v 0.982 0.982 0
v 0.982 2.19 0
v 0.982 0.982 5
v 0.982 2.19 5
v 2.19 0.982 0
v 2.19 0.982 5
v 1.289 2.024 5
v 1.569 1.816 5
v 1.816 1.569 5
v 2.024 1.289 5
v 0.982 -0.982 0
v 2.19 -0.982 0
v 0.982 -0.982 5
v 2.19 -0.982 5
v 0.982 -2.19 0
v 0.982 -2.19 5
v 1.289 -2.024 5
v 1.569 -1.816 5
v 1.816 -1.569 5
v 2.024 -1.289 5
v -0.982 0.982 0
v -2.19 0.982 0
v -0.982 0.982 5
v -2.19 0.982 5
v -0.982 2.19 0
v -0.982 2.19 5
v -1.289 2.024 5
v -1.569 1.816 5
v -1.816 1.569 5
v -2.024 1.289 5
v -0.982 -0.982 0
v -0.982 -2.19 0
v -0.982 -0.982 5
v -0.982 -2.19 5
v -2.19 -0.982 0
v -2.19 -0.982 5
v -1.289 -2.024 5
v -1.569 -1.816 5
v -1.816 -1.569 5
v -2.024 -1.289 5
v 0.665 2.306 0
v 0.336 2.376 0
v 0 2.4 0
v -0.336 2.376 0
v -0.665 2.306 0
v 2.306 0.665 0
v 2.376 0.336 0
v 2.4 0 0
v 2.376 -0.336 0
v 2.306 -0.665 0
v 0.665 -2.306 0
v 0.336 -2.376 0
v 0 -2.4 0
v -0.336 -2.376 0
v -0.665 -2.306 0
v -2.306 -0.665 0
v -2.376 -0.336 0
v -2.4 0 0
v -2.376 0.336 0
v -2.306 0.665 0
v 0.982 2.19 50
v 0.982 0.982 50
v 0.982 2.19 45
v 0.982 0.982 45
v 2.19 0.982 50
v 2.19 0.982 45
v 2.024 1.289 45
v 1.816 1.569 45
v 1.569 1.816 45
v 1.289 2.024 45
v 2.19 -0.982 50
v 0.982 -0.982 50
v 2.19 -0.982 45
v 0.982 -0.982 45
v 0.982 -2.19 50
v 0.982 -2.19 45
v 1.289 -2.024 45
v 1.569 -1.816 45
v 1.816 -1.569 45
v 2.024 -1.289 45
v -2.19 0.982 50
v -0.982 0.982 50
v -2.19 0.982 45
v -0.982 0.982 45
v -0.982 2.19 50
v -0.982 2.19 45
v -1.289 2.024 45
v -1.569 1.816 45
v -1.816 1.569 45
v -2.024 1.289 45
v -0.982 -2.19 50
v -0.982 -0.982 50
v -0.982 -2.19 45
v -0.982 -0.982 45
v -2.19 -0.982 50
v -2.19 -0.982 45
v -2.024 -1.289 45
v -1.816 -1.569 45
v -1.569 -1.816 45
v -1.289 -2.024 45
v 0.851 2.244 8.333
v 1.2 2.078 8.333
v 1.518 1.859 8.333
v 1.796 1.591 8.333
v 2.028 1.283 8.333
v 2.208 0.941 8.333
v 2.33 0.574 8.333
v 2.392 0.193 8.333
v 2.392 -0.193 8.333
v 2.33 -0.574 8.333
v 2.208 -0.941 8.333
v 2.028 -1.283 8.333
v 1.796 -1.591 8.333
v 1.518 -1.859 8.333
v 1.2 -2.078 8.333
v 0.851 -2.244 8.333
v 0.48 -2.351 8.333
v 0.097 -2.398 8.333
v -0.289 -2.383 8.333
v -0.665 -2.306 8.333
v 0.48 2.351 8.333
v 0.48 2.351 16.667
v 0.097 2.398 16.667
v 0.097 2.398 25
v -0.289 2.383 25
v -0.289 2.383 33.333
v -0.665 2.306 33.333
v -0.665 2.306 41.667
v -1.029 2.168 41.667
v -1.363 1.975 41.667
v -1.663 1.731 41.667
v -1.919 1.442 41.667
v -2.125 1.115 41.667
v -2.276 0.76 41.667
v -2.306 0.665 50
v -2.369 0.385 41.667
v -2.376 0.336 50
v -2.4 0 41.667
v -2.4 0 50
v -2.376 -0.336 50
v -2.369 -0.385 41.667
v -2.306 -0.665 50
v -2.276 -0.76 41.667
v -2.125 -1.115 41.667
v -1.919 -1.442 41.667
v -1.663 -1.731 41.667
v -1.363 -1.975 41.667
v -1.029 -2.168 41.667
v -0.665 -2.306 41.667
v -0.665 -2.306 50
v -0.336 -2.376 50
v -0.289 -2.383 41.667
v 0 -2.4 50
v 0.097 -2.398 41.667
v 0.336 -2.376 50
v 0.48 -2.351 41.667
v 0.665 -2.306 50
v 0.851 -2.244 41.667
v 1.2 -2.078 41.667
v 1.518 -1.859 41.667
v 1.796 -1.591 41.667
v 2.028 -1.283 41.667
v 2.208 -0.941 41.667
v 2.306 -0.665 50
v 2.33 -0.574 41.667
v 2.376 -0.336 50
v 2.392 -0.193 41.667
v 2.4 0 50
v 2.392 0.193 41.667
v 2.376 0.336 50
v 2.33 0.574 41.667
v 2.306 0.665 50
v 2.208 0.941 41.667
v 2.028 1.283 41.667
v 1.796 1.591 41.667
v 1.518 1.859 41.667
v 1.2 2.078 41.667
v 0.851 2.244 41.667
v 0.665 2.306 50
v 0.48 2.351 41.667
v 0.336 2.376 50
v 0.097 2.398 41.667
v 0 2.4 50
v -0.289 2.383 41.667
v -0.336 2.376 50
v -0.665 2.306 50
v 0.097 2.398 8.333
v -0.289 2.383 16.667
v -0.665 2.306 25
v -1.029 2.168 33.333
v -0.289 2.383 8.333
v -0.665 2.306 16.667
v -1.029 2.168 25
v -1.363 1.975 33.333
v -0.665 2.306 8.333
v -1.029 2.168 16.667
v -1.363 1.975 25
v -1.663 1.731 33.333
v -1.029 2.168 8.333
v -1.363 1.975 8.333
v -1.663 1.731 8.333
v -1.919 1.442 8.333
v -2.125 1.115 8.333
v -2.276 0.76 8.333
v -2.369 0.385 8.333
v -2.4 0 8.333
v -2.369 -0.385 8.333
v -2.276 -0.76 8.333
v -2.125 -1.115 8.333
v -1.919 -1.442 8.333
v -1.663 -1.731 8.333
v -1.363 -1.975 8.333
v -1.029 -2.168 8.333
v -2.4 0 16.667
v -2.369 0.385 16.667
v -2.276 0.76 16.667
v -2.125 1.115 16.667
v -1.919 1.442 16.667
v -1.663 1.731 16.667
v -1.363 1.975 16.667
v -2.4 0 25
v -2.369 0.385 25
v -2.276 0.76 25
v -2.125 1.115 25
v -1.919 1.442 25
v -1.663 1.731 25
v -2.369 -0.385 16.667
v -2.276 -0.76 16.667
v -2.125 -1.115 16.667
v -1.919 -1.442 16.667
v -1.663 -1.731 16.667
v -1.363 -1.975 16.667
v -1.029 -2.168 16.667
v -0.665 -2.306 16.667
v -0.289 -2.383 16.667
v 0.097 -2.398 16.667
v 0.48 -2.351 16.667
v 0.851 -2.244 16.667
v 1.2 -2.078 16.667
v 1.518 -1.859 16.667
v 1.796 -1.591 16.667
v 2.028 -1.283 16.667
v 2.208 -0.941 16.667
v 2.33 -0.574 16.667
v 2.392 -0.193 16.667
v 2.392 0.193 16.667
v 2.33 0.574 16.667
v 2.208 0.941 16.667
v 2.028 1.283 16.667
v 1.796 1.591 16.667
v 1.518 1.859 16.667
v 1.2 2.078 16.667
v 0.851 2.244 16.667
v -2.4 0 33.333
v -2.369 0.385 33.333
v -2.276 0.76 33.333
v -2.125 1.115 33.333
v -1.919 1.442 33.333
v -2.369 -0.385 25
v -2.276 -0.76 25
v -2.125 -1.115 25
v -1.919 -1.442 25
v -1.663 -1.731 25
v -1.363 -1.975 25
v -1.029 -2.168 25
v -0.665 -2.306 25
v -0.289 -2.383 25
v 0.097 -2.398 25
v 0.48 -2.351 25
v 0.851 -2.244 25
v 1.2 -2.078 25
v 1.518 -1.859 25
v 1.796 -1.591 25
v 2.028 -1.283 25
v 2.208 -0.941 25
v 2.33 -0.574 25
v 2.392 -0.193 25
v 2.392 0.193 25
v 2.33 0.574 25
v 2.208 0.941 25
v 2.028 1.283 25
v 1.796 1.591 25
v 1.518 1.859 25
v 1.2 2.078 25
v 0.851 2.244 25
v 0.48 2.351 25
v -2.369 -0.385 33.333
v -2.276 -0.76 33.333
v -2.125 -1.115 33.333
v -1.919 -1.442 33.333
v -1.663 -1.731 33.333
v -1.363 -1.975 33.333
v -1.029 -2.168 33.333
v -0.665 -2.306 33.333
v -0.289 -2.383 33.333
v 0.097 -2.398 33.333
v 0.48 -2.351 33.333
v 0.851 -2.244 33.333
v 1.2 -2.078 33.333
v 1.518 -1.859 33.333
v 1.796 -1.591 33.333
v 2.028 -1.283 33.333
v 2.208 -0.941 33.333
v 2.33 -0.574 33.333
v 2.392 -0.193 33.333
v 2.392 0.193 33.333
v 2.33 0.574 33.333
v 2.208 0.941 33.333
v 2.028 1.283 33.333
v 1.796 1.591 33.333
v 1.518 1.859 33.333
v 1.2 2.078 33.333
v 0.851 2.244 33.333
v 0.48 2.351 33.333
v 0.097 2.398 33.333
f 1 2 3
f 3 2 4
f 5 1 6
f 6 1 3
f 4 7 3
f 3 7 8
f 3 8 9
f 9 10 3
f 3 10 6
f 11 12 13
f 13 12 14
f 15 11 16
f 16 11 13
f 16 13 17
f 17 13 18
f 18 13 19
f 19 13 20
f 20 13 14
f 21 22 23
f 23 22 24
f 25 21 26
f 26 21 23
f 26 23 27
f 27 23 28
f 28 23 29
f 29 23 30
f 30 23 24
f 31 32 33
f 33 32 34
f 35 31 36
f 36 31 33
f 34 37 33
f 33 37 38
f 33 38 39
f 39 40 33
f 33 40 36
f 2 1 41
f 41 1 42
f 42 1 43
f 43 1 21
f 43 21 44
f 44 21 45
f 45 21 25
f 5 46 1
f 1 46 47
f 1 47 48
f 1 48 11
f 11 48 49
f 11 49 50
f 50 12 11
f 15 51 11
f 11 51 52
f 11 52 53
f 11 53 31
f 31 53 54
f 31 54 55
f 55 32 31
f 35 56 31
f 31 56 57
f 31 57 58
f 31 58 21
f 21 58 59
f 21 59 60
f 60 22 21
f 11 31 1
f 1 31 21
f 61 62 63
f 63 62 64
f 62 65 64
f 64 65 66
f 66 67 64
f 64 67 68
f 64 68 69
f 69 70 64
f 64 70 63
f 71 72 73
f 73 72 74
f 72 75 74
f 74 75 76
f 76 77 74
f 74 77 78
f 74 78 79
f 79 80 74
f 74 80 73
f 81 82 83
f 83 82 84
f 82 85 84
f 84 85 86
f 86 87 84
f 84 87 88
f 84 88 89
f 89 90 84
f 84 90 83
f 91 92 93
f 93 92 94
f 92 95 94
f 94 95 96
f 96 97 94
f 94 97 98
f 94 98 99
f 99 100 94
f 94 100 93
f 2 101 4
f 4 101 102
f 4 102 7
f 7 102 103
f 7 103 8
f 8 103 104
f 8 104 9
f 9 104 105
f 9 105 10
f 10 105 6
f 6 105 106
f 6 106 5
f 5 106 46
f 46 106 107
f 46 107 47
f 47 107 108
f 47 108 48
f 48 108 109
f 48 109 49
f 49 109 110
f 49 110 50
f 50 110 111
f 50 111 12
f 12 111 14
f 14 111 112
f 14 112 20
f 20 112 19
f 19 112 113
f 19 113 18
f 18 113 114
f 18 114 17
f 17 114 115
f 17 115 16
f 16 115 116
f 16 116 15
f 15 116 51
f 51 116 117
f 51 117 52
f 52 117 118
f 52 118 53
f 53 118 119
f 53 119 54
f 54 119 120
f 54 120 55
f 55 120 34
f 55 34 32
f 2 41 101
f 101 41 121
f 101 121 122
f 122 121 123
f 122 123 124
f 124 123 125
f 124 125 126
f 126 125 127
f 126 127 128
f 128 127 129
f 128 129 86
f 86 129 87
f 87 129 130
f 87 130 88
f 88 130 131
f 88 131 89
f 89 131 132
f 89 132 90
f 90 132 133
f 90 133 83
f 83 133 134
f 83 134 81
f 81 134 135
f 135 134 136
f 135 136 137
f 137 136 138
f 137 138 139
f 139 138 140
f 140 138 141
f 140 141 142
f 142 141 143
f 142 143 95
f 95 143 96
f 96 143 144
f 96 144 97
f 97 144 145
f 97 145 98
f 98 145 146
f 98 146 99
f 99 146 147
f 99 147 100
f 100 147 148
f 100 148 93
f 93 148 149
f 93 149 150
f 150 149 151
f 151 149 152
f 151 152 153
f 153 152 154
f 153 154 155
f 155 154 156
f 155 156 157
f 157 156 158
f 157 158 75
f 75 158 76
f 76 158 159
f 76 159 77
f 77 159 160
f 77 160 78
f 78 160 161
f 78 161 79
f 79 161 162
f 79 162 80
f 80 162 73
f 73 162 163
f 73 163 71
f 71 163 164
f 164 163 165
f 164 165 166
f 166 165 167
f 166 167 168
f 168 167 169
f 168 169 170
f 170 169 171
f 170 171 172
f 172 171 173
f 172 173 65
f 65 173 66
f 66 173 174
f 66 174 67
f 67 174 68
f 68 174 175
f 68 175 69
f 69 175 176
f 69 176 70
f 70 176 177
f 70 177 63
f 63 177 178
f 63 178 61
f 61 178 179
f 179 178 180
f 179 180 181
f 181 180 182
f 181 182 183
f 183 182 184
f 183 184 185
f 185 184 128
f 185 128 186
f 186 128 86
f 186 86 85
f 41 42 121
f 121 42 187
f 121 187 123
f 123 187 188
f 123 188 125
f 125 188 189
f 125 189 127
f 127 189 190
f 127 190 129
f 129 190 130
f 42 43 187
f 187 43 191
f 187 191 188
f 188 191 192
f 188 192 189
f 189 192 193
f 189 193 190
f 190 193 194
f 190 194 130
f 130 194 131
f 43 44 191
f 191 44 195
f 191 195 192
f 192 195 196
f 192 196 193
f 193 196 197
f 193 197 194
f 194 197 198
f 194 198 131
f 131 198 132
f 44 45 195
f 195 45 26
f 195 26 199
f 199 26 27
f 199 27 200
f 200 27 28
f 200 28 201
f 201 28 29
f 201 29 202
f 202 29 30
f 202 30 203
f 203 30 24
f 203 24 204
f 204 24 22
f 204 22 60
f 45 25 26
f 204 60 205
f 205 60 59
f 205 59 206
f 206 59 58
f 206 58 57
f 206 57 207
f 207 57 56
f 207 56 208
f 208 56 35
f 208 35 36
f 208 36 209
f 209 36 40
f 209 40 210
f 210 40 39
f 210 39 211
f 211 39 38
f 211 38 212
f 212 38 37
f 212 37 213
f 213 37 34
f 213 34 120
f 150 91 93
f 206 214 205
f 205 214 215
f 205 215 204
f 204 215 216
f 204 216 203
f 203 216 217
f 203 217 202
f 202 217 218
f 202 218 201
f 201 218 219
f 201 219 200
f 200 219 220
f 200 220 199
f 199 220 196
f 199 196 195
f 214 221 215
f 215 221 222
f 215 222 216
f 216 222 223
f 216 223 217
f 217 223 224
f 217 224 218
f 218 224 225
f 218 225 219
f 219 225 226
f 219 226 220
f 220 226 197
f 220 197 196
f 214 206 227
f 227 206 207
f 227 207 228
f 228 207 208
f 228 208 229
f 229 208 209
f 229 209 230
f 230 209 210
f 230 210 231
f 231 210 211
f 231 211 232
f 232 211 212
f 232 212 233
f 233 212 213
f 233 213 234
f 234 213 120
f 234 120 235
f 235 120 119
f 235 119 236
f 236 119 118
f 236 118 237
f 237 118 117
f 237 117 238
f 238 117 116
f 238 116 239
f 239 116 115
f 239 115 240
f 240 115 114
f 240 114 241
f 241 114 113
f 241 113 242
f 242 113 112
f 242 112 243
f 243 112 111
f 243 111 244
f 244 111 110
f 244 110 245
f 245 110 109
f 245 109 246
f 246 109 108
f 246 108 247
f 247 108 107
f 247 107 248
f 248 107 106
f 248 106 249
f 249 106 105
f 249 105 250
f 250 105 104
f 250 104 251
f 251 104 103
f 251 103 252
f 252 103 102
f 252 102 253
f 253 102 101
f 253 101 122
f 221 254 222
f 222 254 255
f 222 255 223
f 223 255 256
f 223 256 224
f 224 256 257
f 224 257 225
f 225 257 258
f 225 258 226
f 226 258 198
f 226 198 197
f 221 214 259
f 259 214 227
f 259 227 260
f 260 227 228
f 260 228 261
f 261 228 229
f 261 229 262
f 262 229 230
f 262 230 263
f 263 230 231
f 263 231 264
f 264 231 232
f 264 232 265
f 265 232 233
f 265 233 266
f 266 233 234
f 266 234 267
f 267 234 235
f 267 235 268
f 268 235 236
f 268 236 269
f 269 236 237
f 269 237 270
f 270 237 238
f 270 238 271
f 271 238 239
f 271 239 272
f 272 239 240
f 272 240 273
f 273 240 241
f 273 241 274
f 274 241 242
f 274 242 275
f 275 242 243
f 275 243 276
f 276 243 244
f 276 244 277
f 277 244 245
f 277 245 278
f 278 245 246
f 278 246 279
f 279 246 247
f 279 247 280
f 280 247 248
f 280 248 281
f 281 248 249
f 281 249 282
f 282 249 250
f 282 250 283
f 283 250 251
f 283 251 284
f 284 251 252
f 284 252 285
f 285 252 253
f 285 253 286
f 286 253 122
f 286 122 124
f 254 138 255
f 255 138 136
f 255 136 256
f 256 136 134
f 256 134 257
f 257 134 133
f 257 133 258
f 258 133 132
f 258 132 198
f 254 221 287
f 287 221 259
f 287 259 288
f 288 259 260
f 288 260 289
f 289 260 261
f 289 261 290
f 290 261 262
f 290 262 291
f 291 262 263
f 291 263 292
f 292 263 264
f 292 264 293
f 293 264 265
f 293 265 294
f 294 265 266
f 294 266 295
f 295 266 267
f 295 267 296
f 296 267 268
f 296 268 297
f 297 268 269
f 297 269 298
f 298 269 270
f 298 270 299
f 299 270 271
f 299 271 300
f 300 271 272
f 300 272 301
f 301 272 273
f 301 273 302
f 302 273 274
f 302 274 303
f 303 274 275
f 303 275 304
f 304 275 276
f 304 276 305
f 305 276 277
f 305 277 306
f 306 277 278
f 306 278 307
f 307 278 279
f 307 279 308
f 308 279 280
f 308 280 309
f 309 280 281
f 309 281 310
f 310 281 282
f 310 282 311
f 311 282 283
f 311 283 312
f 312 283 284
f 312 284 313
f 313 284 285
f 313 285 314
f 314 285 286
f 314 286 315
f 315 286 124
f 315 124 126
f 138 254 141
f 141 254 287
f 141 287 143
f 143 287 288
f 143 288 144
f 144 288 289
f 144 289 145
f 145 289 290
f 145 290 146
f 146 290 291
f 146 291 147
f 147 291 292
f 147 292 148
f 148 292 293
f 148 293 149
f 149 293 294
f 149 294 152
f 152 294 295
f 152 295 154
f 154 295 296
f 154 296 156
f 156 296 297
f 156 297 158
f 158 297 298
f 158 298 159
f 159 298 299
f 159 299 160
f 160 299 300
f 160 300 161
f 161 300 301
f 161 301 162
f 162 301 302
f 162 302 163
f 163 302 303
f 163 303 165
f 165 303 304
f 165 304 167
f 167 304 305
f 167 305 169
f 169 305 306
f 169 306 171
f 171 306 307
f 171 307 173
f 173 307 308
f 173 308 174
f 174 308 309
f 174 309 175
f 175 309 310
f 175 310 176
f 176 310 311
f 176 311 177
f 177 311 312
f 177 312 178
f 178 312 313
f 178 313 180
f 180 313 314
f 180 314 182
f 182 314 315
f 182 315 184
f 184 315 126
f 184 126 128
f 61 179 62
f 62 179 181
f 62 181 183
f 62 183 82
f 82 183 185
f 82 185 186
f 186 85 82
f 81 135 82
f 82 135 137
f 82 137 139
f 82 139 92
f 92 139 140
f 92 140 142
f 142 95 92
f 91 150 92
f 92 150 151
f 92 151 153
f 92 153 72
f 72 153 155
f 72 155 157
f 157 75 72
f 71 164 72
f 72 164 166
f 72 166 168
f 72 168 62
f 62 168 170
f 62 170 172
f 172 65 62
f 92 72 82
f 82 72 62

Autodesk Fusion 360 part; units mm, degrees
sketch "Sketch1" plane through (0, 0, 0) normal (0, 0, 1) x (1, 0, 0)
  circle A0 centre (0, 0) radius 2.4
  dimension "d1" = 4.8
extrude "Extrude1" add sketch "Sketch1" along normal blind 50
sketch "Sketch2" plane through (0, 0, 50) normal (0, 0, 1) x (-1, 0, 0)
  circle A0 centre (0, 0) radius 2.4
  line L0 (0.9817, -0.9817) -> (-0.9817, -0.9817)
  line L1 (-0.9817, -0.9817) -> (-0.9817, 0.9817)
  line L2 (-0.9817, 0.9817) -> (0.9817, 0.9817)
  line L3 (0.9817, 0.9817) -> (0.9817, -0.9817)
  line L4 (0.9817, -0.9817) -> (-0.9817, 0.9817) construction
  line L5 (-0.9817, -0.9817) -> (0.9817, 0.9817) construction
  line L6 (0.9817, -0.9817) -> (2.1901, -0.9817)
  line L7 (0.9817, 0.9817) -> (2.1901, 0.9817)
  line L8 (-0.9817, 0.9817) -> (-2.1901, 0.9817)
  line L9 (-0.9817, -0.9817) -> (-2.1901, -0.9817)
  line L10 (-0.9817, -0.9817) -> (-0.9817, -2.1901)
  line L11 (0.9817, -0.9817) -> (0.9817, -2.1901)
  line L12 (0.9817, 0.9817) -> (0.9817, 2.1901)
  line L13 (-0.9817, 0.9817) -> (-0.9817, 2.1901)
extrude "Extrude2" cut sketch "Sketch2" against normal blind 5 contours A0 L7 L12 | A0 L6 L11 | A0 L8 L13 | A0 L9 L10
ref_plane "WorkPlane1" through (0, 0, 25) normal (0, 0, 1) x (1, 0, 0)
mirror "Mirror1" about plane through (0, 0, 25) normal (0, 0, 1) of "Extrude2"
